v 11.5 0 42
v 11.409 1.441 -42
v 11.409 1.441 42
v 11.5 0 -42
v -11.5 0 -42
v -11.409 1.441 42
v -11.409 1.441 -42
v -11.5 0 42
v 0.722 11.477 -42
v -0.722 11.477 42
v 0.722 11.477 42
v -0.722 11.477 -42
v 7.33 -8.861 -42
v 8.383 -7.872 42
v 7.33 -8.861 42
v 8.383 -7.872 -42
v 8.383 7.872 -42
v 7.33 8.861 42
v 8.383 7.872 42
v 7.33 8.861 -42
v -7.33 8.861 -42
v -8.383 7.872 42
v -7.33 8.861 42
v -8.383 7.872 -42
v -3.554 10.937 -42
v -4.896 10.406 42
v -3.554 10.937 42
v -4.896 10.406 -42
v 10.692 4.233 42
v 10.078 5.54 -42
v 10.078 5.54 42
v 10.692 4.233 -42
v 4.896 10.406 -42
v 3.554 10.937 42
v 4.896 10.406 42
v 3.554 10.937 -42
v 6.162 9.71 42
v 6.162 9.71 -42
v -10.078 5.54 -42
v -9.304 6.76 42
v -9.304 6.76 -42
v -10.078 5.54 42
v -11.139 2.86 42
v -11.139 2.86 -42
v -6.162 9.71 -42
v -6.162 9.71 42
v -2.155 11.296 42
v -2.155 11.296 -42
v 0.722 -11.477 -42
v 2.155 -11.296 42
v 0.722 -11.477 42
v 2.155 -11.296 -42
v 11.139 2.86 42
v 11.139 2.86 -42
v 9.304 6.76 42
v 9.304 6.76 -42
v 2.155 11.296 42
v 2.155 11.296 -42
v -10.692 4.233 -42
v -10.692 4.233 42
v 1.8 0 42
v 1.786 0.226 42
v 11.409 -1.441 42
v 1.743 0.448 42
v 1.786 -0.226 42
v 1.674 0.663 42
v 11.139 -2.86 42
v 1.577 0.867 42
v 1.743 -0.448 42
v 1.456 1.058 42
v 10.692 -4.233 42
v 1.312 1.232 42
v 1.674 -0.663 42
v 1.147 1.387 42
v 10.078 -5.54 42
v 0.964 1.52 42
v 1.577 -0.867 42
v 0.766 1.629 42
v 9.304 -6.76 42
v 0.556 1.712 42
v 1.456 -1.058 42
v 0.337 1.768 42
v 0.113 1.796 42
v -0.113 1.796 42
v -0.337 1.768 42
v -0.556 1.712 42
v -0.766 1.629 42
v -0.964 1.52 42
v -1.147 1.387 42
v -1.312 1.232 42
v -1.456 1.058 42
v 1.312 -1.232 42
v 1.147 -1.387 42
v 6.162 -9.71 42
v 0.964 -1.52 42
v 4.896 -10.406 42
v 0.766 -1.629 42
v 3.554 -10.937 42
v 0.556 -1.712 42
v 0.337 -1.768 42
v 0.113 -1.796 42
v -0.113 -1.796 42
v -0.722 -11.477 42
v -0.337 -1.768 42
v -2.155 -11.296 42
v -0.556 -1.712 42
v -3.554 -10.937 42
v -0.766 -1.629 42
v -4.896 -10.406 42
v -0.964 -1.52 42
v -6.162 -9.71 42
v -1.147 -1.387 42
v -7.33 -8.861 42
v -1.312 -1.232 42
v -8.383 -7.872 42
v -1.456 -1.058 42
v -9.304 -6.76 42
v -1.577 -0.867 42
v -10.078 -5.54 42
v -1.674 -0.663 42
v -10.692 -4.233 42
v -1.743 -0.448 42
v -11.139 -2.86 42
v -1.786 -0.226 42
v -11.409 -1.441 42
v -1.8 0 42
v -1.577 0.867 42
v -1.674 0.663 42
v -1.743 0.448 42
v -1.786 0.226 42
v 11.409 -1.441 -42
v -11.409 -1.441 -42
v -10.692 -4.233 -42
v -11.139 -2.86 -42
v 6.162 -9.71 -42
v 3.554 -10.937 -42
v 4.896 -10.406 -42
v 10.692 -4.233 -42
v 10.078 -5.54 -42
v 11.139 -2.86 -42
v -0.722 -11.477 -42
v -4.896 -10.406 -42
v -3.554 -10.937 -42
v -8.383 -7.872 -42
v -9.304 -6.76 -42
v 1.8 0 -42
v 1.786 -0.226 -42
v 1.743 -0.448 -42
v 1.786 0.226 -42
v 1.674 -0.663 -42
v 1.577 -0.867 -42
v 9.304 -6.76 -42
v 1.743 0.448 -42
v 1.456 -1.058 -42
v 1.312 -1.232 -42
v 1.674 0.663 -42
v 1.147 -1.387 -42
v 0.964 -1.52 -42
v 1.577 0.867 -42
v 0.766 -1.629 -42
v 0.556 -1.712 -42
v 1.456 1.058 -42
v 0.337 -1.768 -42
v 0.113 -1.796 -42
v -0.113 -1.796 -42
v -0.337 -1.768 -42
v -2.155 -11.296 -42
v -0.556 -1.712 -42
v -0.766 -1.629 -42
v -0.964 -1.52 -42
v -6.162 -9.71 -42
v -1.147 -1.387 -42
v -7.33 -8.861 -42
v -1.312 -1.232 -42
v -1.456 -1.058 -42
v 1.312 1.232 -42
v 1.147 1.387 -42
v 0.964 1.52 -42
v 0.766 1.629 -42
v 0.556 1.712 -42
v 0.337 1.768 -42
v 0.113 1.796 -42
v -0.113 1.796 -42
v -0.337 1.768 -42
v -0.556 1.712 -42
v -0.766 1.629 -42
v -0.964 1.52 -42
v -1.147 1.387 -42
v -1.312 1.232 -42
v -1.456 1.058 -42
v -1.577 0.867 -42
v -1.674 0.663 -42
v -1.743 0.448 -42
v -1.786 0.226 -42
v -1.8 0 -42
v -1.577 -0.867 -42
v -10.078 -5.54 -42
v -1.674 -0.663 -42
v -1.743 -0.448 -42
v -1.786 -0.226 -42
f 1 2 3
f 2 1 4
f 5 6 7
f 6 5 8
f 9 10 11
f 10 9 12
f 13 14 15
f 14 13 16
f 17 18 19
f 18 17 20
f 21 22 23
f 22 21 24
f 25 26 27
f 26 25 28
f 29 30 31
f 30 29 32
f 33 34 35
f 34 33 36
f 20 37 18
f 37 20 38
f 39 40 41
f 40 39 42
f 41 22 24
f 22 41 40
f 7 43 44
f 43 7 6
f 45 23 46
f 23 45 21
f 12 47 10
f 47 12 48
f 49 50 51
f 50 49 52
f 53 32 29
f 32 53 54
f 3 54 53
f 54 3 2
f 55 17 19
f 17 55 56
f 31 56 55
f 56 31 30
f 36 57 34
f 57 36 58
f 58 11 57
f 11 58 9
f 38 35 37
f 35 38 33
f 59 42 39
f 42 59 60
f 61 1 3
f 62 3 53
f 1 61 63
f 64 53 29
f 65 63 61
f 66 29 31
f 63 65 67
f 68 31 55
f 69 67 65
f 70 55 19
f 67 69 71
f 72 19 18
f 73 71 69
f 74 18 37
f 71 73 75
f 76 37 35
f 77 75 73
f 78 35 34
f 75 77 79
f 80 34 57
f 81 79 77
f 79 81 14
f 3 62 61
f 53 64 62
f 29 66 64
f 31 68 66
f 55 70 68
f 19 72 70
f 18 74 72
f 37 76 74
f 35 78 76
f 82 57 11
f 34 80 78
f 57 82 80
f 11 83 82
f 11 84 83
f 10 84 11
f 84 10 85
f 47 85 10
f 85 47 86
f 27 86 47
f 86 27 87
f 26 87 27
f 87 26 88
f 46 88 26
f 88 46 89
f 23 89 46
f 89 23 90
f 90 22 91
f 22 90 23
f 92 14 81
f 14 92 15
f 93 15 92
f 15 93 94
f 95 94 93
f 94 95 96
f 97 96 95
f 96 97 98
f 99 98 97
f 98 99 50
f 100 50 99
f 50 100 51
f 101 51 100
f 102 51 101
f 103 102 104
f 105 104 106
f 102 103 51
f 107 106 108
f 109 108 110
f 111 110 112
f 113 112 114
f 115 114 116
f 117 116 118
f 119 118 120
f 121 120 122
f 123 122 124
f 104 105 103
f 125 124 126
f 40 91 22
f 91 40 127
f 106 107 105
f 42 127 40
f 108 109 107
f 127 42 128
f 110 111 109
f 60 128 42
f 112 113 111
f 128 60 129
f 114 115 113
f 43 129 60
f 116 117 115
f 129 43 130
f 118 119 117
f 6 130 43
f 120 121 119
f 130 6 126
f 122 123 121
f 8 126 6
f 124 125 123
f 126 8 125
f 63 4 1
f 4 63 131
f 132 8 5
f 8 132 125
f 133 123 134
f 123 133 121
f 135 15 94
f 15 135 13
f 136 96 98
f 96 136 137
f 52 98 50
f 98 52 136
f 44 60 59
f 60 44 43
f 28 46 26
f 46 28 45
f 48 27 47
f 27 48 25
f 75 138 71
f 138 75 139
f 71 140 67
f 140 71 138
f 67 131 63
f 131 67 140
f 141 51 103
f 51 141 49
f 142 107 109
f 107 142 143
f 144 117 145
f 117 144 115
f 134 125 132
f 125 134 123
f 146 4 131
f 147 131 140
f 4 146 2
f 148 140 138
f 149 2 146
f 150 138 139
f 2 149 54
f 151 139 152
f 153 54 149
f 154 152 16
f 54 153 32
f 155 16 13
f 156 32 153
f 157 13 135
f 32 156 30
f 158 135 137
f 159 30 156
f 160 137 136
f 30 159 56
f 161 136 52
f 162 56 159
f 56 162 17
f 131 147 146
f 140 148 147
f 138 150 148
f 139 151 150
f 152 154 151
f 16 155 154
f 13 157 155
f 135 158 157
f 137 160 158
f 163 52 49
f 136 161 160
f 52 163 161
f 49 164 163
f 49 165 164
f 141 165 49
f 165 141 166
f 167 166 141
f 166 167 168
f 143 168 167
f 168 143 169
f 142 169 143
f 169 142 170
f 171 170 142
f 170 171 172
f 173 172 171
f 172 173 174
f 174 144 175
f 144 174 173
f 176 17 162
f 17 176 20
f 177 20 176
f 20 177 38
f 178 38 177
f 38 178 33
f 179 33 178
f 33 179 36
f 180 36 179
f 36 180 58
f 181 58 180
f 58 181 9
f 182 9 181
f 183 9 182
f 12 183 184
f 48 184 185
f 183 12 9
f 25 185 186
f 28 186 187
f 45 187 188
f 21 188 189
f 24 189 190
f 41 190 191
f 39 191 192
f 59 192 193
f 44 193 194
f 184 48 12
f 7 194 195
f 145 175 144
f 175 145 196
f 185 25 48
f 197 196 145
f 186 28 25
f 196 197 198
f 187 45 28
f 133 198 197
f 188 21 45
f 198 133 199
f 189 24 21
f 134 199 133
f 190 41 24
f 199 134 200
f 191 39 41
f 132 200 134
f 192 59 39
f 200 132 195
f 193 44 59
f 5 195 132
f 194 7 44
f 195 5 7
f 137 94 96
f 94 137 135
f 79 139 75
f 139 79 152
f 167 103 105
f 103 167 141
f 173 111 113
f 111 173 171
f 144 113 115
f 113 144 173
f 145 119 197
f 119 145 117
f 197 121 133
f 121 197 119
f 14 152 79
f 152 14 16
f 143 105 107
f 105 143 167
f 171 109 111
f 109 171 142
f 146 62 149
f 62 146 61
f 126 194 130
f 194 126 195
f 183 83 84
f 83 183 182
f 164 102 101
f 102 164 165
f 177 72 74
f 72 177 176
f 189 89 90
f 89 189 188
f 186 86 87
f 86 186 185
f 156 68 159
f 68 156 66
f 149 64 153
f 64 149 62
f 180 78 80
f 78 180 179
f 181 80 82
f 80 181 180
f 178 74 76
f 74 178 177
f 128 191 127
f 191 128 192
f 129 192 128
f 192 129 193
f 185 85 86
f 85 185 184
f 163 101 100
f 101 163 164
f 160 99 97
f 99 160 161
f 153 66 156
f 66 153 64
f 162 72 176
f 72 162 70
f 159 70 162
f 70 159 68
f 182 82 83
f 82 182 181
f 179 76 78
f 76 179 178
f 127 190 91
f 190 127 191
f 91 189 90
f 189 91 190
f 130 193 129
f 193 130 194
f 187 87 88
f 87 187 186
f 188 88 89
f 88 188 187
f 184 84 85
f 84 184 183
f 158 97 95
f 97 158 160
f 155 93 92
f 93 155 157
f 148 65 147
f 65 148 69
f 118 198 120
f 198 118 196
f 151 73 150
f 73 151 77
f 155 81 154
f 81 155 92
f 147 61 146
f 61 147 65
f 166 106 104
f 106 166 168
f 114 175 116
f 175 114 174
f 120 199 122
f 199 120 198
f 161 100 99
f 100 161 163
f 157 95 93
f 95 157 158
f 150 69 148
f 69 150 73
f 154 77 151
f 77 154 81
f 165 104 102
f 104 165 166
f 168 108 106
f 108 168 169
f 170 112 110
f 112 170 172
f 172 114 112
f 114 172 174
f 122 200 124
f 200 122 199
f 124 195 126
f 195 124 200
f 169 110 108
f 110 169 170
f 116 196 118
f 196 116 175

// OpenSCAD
$fn = 50;


difference() {
	union() {
		translate(v = [0, 0, -42.0000000000]) {
			cylinder(h = 84, r = 11.5000000000);
		}
	}
	union() {
		translate(v = [0, 0, -100.0000000000]) {
			cylinder(h = 200, r = 1.8000000000);
		}
	}
}
